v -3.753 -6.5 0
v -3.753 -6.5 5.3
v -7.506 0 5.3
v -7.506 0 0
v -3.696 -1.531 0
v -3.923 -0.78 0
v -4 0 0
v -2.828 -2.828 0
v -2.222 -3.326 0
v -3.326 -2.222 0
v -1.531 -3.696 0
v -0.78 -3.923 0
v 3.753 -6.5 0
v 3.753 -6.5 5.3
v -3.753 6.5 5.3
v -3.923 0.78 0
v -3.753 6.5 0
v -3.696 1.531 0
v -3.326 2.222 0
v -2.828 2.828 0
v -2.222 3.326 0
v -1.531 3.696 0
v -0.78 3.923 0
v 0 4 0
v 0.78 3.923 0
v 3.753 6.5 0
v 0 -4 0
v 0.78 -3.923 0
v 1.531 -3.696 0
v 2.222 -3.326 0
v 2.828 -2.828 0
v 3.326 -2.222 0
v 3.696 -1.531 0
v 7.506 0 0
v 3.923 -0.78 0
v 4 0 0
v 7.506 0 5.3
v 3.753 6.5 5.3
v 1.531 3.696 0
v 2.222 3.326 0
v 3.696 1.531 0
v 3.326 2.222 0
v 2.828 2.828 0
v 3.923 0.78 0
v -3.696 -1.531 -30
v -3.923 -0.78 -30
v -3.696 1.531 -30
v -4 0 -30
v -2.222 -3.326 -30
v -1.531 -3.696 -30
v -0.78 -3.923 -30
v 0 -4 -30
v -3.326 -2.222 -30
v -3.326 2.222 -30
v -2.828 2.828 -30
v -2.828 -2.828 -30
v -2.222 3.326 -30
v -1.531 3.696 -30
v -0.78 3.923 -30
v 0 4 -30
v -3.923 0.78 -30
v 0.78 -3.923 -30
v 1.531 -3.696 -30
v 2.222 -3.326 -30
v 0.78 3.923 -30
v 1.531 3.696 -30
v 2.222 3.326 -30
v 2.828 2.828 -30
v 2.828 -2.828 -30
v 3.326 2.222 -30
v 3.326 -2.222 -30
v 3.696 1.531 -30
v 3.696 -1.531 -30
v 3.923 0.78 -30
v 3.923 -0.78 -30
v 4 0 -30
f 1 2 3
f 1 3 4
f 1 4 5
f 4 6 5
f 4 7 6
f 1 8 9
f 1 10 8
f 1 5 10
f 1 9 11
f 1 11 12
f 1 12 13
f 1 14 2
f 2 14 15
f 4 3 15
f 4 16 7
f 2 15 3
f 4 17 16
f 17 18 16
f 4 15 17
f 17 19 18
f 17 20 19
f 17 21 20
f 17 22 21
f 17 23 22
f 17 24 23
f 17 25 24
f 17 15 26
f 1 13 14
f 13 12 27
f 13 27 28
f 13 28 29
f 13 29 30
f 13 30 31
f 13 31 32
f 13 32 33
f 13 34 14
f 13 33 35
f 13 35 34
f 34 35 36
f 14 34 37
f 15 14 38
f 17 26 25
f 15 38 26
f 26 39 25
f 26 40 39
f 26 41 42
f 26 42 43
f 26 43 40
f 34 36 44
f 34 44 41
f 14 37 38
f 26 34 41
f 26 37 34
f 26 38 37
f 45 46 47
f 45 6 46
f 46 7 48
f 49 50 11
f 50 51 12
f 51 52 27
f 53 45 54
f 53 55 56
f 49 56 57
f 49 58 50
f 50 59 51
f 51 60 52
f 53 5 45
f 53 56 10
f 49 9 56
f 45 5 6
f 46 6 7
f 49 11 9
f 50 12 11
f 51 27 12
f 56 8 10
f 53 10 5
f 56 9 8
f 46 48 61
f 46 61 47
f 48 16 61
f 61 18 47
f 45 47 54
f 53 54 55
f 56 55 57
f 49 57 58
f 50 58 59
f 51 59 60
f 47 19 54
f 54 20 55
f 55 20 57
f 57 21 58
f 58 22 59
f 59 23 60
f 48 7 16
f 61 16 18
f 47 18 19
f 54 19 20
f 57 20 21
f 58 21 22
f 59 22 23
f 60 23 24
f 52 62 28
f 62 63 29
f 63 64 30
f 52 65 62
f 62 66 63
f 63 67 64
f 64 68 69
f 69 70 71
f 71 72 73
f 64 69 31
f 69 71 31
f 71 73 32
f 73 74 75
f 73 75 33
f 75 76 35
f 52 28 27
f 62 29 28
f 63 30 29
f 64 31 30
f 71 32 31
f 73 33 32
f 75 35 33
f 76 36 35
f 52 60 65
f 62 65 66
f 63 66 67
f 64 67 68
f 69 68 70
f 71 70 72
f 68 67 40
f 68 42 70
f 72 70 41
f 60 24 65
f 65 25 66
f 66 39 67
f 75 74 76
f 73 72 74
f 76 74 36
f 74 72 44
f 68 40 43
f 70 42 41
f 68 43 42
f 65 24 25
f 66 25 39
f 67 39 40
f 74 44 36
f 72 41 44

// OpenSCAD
module hex_bolt_m8() {
    // 六角形の対辺距離 13mm から、外接円の半径を計算
    // 対辺距離 = sqrt(3) * 外接円半径
    // 外接円半径 = 対辺距離 / sqrt(3)
    hex_radius = 13 / sqrt(3);
    
    // 頭部：六角柱
    cylinder(h = 5.3, r = hex_radius, $fn = 6);
    
    // シャンク：円柱（z < 0 側へ伸ばす）
    translate([0, 0, -30])
        cylinder(h = 30, r = 4, $fn = 32);
}

hex_bolt_m8();
